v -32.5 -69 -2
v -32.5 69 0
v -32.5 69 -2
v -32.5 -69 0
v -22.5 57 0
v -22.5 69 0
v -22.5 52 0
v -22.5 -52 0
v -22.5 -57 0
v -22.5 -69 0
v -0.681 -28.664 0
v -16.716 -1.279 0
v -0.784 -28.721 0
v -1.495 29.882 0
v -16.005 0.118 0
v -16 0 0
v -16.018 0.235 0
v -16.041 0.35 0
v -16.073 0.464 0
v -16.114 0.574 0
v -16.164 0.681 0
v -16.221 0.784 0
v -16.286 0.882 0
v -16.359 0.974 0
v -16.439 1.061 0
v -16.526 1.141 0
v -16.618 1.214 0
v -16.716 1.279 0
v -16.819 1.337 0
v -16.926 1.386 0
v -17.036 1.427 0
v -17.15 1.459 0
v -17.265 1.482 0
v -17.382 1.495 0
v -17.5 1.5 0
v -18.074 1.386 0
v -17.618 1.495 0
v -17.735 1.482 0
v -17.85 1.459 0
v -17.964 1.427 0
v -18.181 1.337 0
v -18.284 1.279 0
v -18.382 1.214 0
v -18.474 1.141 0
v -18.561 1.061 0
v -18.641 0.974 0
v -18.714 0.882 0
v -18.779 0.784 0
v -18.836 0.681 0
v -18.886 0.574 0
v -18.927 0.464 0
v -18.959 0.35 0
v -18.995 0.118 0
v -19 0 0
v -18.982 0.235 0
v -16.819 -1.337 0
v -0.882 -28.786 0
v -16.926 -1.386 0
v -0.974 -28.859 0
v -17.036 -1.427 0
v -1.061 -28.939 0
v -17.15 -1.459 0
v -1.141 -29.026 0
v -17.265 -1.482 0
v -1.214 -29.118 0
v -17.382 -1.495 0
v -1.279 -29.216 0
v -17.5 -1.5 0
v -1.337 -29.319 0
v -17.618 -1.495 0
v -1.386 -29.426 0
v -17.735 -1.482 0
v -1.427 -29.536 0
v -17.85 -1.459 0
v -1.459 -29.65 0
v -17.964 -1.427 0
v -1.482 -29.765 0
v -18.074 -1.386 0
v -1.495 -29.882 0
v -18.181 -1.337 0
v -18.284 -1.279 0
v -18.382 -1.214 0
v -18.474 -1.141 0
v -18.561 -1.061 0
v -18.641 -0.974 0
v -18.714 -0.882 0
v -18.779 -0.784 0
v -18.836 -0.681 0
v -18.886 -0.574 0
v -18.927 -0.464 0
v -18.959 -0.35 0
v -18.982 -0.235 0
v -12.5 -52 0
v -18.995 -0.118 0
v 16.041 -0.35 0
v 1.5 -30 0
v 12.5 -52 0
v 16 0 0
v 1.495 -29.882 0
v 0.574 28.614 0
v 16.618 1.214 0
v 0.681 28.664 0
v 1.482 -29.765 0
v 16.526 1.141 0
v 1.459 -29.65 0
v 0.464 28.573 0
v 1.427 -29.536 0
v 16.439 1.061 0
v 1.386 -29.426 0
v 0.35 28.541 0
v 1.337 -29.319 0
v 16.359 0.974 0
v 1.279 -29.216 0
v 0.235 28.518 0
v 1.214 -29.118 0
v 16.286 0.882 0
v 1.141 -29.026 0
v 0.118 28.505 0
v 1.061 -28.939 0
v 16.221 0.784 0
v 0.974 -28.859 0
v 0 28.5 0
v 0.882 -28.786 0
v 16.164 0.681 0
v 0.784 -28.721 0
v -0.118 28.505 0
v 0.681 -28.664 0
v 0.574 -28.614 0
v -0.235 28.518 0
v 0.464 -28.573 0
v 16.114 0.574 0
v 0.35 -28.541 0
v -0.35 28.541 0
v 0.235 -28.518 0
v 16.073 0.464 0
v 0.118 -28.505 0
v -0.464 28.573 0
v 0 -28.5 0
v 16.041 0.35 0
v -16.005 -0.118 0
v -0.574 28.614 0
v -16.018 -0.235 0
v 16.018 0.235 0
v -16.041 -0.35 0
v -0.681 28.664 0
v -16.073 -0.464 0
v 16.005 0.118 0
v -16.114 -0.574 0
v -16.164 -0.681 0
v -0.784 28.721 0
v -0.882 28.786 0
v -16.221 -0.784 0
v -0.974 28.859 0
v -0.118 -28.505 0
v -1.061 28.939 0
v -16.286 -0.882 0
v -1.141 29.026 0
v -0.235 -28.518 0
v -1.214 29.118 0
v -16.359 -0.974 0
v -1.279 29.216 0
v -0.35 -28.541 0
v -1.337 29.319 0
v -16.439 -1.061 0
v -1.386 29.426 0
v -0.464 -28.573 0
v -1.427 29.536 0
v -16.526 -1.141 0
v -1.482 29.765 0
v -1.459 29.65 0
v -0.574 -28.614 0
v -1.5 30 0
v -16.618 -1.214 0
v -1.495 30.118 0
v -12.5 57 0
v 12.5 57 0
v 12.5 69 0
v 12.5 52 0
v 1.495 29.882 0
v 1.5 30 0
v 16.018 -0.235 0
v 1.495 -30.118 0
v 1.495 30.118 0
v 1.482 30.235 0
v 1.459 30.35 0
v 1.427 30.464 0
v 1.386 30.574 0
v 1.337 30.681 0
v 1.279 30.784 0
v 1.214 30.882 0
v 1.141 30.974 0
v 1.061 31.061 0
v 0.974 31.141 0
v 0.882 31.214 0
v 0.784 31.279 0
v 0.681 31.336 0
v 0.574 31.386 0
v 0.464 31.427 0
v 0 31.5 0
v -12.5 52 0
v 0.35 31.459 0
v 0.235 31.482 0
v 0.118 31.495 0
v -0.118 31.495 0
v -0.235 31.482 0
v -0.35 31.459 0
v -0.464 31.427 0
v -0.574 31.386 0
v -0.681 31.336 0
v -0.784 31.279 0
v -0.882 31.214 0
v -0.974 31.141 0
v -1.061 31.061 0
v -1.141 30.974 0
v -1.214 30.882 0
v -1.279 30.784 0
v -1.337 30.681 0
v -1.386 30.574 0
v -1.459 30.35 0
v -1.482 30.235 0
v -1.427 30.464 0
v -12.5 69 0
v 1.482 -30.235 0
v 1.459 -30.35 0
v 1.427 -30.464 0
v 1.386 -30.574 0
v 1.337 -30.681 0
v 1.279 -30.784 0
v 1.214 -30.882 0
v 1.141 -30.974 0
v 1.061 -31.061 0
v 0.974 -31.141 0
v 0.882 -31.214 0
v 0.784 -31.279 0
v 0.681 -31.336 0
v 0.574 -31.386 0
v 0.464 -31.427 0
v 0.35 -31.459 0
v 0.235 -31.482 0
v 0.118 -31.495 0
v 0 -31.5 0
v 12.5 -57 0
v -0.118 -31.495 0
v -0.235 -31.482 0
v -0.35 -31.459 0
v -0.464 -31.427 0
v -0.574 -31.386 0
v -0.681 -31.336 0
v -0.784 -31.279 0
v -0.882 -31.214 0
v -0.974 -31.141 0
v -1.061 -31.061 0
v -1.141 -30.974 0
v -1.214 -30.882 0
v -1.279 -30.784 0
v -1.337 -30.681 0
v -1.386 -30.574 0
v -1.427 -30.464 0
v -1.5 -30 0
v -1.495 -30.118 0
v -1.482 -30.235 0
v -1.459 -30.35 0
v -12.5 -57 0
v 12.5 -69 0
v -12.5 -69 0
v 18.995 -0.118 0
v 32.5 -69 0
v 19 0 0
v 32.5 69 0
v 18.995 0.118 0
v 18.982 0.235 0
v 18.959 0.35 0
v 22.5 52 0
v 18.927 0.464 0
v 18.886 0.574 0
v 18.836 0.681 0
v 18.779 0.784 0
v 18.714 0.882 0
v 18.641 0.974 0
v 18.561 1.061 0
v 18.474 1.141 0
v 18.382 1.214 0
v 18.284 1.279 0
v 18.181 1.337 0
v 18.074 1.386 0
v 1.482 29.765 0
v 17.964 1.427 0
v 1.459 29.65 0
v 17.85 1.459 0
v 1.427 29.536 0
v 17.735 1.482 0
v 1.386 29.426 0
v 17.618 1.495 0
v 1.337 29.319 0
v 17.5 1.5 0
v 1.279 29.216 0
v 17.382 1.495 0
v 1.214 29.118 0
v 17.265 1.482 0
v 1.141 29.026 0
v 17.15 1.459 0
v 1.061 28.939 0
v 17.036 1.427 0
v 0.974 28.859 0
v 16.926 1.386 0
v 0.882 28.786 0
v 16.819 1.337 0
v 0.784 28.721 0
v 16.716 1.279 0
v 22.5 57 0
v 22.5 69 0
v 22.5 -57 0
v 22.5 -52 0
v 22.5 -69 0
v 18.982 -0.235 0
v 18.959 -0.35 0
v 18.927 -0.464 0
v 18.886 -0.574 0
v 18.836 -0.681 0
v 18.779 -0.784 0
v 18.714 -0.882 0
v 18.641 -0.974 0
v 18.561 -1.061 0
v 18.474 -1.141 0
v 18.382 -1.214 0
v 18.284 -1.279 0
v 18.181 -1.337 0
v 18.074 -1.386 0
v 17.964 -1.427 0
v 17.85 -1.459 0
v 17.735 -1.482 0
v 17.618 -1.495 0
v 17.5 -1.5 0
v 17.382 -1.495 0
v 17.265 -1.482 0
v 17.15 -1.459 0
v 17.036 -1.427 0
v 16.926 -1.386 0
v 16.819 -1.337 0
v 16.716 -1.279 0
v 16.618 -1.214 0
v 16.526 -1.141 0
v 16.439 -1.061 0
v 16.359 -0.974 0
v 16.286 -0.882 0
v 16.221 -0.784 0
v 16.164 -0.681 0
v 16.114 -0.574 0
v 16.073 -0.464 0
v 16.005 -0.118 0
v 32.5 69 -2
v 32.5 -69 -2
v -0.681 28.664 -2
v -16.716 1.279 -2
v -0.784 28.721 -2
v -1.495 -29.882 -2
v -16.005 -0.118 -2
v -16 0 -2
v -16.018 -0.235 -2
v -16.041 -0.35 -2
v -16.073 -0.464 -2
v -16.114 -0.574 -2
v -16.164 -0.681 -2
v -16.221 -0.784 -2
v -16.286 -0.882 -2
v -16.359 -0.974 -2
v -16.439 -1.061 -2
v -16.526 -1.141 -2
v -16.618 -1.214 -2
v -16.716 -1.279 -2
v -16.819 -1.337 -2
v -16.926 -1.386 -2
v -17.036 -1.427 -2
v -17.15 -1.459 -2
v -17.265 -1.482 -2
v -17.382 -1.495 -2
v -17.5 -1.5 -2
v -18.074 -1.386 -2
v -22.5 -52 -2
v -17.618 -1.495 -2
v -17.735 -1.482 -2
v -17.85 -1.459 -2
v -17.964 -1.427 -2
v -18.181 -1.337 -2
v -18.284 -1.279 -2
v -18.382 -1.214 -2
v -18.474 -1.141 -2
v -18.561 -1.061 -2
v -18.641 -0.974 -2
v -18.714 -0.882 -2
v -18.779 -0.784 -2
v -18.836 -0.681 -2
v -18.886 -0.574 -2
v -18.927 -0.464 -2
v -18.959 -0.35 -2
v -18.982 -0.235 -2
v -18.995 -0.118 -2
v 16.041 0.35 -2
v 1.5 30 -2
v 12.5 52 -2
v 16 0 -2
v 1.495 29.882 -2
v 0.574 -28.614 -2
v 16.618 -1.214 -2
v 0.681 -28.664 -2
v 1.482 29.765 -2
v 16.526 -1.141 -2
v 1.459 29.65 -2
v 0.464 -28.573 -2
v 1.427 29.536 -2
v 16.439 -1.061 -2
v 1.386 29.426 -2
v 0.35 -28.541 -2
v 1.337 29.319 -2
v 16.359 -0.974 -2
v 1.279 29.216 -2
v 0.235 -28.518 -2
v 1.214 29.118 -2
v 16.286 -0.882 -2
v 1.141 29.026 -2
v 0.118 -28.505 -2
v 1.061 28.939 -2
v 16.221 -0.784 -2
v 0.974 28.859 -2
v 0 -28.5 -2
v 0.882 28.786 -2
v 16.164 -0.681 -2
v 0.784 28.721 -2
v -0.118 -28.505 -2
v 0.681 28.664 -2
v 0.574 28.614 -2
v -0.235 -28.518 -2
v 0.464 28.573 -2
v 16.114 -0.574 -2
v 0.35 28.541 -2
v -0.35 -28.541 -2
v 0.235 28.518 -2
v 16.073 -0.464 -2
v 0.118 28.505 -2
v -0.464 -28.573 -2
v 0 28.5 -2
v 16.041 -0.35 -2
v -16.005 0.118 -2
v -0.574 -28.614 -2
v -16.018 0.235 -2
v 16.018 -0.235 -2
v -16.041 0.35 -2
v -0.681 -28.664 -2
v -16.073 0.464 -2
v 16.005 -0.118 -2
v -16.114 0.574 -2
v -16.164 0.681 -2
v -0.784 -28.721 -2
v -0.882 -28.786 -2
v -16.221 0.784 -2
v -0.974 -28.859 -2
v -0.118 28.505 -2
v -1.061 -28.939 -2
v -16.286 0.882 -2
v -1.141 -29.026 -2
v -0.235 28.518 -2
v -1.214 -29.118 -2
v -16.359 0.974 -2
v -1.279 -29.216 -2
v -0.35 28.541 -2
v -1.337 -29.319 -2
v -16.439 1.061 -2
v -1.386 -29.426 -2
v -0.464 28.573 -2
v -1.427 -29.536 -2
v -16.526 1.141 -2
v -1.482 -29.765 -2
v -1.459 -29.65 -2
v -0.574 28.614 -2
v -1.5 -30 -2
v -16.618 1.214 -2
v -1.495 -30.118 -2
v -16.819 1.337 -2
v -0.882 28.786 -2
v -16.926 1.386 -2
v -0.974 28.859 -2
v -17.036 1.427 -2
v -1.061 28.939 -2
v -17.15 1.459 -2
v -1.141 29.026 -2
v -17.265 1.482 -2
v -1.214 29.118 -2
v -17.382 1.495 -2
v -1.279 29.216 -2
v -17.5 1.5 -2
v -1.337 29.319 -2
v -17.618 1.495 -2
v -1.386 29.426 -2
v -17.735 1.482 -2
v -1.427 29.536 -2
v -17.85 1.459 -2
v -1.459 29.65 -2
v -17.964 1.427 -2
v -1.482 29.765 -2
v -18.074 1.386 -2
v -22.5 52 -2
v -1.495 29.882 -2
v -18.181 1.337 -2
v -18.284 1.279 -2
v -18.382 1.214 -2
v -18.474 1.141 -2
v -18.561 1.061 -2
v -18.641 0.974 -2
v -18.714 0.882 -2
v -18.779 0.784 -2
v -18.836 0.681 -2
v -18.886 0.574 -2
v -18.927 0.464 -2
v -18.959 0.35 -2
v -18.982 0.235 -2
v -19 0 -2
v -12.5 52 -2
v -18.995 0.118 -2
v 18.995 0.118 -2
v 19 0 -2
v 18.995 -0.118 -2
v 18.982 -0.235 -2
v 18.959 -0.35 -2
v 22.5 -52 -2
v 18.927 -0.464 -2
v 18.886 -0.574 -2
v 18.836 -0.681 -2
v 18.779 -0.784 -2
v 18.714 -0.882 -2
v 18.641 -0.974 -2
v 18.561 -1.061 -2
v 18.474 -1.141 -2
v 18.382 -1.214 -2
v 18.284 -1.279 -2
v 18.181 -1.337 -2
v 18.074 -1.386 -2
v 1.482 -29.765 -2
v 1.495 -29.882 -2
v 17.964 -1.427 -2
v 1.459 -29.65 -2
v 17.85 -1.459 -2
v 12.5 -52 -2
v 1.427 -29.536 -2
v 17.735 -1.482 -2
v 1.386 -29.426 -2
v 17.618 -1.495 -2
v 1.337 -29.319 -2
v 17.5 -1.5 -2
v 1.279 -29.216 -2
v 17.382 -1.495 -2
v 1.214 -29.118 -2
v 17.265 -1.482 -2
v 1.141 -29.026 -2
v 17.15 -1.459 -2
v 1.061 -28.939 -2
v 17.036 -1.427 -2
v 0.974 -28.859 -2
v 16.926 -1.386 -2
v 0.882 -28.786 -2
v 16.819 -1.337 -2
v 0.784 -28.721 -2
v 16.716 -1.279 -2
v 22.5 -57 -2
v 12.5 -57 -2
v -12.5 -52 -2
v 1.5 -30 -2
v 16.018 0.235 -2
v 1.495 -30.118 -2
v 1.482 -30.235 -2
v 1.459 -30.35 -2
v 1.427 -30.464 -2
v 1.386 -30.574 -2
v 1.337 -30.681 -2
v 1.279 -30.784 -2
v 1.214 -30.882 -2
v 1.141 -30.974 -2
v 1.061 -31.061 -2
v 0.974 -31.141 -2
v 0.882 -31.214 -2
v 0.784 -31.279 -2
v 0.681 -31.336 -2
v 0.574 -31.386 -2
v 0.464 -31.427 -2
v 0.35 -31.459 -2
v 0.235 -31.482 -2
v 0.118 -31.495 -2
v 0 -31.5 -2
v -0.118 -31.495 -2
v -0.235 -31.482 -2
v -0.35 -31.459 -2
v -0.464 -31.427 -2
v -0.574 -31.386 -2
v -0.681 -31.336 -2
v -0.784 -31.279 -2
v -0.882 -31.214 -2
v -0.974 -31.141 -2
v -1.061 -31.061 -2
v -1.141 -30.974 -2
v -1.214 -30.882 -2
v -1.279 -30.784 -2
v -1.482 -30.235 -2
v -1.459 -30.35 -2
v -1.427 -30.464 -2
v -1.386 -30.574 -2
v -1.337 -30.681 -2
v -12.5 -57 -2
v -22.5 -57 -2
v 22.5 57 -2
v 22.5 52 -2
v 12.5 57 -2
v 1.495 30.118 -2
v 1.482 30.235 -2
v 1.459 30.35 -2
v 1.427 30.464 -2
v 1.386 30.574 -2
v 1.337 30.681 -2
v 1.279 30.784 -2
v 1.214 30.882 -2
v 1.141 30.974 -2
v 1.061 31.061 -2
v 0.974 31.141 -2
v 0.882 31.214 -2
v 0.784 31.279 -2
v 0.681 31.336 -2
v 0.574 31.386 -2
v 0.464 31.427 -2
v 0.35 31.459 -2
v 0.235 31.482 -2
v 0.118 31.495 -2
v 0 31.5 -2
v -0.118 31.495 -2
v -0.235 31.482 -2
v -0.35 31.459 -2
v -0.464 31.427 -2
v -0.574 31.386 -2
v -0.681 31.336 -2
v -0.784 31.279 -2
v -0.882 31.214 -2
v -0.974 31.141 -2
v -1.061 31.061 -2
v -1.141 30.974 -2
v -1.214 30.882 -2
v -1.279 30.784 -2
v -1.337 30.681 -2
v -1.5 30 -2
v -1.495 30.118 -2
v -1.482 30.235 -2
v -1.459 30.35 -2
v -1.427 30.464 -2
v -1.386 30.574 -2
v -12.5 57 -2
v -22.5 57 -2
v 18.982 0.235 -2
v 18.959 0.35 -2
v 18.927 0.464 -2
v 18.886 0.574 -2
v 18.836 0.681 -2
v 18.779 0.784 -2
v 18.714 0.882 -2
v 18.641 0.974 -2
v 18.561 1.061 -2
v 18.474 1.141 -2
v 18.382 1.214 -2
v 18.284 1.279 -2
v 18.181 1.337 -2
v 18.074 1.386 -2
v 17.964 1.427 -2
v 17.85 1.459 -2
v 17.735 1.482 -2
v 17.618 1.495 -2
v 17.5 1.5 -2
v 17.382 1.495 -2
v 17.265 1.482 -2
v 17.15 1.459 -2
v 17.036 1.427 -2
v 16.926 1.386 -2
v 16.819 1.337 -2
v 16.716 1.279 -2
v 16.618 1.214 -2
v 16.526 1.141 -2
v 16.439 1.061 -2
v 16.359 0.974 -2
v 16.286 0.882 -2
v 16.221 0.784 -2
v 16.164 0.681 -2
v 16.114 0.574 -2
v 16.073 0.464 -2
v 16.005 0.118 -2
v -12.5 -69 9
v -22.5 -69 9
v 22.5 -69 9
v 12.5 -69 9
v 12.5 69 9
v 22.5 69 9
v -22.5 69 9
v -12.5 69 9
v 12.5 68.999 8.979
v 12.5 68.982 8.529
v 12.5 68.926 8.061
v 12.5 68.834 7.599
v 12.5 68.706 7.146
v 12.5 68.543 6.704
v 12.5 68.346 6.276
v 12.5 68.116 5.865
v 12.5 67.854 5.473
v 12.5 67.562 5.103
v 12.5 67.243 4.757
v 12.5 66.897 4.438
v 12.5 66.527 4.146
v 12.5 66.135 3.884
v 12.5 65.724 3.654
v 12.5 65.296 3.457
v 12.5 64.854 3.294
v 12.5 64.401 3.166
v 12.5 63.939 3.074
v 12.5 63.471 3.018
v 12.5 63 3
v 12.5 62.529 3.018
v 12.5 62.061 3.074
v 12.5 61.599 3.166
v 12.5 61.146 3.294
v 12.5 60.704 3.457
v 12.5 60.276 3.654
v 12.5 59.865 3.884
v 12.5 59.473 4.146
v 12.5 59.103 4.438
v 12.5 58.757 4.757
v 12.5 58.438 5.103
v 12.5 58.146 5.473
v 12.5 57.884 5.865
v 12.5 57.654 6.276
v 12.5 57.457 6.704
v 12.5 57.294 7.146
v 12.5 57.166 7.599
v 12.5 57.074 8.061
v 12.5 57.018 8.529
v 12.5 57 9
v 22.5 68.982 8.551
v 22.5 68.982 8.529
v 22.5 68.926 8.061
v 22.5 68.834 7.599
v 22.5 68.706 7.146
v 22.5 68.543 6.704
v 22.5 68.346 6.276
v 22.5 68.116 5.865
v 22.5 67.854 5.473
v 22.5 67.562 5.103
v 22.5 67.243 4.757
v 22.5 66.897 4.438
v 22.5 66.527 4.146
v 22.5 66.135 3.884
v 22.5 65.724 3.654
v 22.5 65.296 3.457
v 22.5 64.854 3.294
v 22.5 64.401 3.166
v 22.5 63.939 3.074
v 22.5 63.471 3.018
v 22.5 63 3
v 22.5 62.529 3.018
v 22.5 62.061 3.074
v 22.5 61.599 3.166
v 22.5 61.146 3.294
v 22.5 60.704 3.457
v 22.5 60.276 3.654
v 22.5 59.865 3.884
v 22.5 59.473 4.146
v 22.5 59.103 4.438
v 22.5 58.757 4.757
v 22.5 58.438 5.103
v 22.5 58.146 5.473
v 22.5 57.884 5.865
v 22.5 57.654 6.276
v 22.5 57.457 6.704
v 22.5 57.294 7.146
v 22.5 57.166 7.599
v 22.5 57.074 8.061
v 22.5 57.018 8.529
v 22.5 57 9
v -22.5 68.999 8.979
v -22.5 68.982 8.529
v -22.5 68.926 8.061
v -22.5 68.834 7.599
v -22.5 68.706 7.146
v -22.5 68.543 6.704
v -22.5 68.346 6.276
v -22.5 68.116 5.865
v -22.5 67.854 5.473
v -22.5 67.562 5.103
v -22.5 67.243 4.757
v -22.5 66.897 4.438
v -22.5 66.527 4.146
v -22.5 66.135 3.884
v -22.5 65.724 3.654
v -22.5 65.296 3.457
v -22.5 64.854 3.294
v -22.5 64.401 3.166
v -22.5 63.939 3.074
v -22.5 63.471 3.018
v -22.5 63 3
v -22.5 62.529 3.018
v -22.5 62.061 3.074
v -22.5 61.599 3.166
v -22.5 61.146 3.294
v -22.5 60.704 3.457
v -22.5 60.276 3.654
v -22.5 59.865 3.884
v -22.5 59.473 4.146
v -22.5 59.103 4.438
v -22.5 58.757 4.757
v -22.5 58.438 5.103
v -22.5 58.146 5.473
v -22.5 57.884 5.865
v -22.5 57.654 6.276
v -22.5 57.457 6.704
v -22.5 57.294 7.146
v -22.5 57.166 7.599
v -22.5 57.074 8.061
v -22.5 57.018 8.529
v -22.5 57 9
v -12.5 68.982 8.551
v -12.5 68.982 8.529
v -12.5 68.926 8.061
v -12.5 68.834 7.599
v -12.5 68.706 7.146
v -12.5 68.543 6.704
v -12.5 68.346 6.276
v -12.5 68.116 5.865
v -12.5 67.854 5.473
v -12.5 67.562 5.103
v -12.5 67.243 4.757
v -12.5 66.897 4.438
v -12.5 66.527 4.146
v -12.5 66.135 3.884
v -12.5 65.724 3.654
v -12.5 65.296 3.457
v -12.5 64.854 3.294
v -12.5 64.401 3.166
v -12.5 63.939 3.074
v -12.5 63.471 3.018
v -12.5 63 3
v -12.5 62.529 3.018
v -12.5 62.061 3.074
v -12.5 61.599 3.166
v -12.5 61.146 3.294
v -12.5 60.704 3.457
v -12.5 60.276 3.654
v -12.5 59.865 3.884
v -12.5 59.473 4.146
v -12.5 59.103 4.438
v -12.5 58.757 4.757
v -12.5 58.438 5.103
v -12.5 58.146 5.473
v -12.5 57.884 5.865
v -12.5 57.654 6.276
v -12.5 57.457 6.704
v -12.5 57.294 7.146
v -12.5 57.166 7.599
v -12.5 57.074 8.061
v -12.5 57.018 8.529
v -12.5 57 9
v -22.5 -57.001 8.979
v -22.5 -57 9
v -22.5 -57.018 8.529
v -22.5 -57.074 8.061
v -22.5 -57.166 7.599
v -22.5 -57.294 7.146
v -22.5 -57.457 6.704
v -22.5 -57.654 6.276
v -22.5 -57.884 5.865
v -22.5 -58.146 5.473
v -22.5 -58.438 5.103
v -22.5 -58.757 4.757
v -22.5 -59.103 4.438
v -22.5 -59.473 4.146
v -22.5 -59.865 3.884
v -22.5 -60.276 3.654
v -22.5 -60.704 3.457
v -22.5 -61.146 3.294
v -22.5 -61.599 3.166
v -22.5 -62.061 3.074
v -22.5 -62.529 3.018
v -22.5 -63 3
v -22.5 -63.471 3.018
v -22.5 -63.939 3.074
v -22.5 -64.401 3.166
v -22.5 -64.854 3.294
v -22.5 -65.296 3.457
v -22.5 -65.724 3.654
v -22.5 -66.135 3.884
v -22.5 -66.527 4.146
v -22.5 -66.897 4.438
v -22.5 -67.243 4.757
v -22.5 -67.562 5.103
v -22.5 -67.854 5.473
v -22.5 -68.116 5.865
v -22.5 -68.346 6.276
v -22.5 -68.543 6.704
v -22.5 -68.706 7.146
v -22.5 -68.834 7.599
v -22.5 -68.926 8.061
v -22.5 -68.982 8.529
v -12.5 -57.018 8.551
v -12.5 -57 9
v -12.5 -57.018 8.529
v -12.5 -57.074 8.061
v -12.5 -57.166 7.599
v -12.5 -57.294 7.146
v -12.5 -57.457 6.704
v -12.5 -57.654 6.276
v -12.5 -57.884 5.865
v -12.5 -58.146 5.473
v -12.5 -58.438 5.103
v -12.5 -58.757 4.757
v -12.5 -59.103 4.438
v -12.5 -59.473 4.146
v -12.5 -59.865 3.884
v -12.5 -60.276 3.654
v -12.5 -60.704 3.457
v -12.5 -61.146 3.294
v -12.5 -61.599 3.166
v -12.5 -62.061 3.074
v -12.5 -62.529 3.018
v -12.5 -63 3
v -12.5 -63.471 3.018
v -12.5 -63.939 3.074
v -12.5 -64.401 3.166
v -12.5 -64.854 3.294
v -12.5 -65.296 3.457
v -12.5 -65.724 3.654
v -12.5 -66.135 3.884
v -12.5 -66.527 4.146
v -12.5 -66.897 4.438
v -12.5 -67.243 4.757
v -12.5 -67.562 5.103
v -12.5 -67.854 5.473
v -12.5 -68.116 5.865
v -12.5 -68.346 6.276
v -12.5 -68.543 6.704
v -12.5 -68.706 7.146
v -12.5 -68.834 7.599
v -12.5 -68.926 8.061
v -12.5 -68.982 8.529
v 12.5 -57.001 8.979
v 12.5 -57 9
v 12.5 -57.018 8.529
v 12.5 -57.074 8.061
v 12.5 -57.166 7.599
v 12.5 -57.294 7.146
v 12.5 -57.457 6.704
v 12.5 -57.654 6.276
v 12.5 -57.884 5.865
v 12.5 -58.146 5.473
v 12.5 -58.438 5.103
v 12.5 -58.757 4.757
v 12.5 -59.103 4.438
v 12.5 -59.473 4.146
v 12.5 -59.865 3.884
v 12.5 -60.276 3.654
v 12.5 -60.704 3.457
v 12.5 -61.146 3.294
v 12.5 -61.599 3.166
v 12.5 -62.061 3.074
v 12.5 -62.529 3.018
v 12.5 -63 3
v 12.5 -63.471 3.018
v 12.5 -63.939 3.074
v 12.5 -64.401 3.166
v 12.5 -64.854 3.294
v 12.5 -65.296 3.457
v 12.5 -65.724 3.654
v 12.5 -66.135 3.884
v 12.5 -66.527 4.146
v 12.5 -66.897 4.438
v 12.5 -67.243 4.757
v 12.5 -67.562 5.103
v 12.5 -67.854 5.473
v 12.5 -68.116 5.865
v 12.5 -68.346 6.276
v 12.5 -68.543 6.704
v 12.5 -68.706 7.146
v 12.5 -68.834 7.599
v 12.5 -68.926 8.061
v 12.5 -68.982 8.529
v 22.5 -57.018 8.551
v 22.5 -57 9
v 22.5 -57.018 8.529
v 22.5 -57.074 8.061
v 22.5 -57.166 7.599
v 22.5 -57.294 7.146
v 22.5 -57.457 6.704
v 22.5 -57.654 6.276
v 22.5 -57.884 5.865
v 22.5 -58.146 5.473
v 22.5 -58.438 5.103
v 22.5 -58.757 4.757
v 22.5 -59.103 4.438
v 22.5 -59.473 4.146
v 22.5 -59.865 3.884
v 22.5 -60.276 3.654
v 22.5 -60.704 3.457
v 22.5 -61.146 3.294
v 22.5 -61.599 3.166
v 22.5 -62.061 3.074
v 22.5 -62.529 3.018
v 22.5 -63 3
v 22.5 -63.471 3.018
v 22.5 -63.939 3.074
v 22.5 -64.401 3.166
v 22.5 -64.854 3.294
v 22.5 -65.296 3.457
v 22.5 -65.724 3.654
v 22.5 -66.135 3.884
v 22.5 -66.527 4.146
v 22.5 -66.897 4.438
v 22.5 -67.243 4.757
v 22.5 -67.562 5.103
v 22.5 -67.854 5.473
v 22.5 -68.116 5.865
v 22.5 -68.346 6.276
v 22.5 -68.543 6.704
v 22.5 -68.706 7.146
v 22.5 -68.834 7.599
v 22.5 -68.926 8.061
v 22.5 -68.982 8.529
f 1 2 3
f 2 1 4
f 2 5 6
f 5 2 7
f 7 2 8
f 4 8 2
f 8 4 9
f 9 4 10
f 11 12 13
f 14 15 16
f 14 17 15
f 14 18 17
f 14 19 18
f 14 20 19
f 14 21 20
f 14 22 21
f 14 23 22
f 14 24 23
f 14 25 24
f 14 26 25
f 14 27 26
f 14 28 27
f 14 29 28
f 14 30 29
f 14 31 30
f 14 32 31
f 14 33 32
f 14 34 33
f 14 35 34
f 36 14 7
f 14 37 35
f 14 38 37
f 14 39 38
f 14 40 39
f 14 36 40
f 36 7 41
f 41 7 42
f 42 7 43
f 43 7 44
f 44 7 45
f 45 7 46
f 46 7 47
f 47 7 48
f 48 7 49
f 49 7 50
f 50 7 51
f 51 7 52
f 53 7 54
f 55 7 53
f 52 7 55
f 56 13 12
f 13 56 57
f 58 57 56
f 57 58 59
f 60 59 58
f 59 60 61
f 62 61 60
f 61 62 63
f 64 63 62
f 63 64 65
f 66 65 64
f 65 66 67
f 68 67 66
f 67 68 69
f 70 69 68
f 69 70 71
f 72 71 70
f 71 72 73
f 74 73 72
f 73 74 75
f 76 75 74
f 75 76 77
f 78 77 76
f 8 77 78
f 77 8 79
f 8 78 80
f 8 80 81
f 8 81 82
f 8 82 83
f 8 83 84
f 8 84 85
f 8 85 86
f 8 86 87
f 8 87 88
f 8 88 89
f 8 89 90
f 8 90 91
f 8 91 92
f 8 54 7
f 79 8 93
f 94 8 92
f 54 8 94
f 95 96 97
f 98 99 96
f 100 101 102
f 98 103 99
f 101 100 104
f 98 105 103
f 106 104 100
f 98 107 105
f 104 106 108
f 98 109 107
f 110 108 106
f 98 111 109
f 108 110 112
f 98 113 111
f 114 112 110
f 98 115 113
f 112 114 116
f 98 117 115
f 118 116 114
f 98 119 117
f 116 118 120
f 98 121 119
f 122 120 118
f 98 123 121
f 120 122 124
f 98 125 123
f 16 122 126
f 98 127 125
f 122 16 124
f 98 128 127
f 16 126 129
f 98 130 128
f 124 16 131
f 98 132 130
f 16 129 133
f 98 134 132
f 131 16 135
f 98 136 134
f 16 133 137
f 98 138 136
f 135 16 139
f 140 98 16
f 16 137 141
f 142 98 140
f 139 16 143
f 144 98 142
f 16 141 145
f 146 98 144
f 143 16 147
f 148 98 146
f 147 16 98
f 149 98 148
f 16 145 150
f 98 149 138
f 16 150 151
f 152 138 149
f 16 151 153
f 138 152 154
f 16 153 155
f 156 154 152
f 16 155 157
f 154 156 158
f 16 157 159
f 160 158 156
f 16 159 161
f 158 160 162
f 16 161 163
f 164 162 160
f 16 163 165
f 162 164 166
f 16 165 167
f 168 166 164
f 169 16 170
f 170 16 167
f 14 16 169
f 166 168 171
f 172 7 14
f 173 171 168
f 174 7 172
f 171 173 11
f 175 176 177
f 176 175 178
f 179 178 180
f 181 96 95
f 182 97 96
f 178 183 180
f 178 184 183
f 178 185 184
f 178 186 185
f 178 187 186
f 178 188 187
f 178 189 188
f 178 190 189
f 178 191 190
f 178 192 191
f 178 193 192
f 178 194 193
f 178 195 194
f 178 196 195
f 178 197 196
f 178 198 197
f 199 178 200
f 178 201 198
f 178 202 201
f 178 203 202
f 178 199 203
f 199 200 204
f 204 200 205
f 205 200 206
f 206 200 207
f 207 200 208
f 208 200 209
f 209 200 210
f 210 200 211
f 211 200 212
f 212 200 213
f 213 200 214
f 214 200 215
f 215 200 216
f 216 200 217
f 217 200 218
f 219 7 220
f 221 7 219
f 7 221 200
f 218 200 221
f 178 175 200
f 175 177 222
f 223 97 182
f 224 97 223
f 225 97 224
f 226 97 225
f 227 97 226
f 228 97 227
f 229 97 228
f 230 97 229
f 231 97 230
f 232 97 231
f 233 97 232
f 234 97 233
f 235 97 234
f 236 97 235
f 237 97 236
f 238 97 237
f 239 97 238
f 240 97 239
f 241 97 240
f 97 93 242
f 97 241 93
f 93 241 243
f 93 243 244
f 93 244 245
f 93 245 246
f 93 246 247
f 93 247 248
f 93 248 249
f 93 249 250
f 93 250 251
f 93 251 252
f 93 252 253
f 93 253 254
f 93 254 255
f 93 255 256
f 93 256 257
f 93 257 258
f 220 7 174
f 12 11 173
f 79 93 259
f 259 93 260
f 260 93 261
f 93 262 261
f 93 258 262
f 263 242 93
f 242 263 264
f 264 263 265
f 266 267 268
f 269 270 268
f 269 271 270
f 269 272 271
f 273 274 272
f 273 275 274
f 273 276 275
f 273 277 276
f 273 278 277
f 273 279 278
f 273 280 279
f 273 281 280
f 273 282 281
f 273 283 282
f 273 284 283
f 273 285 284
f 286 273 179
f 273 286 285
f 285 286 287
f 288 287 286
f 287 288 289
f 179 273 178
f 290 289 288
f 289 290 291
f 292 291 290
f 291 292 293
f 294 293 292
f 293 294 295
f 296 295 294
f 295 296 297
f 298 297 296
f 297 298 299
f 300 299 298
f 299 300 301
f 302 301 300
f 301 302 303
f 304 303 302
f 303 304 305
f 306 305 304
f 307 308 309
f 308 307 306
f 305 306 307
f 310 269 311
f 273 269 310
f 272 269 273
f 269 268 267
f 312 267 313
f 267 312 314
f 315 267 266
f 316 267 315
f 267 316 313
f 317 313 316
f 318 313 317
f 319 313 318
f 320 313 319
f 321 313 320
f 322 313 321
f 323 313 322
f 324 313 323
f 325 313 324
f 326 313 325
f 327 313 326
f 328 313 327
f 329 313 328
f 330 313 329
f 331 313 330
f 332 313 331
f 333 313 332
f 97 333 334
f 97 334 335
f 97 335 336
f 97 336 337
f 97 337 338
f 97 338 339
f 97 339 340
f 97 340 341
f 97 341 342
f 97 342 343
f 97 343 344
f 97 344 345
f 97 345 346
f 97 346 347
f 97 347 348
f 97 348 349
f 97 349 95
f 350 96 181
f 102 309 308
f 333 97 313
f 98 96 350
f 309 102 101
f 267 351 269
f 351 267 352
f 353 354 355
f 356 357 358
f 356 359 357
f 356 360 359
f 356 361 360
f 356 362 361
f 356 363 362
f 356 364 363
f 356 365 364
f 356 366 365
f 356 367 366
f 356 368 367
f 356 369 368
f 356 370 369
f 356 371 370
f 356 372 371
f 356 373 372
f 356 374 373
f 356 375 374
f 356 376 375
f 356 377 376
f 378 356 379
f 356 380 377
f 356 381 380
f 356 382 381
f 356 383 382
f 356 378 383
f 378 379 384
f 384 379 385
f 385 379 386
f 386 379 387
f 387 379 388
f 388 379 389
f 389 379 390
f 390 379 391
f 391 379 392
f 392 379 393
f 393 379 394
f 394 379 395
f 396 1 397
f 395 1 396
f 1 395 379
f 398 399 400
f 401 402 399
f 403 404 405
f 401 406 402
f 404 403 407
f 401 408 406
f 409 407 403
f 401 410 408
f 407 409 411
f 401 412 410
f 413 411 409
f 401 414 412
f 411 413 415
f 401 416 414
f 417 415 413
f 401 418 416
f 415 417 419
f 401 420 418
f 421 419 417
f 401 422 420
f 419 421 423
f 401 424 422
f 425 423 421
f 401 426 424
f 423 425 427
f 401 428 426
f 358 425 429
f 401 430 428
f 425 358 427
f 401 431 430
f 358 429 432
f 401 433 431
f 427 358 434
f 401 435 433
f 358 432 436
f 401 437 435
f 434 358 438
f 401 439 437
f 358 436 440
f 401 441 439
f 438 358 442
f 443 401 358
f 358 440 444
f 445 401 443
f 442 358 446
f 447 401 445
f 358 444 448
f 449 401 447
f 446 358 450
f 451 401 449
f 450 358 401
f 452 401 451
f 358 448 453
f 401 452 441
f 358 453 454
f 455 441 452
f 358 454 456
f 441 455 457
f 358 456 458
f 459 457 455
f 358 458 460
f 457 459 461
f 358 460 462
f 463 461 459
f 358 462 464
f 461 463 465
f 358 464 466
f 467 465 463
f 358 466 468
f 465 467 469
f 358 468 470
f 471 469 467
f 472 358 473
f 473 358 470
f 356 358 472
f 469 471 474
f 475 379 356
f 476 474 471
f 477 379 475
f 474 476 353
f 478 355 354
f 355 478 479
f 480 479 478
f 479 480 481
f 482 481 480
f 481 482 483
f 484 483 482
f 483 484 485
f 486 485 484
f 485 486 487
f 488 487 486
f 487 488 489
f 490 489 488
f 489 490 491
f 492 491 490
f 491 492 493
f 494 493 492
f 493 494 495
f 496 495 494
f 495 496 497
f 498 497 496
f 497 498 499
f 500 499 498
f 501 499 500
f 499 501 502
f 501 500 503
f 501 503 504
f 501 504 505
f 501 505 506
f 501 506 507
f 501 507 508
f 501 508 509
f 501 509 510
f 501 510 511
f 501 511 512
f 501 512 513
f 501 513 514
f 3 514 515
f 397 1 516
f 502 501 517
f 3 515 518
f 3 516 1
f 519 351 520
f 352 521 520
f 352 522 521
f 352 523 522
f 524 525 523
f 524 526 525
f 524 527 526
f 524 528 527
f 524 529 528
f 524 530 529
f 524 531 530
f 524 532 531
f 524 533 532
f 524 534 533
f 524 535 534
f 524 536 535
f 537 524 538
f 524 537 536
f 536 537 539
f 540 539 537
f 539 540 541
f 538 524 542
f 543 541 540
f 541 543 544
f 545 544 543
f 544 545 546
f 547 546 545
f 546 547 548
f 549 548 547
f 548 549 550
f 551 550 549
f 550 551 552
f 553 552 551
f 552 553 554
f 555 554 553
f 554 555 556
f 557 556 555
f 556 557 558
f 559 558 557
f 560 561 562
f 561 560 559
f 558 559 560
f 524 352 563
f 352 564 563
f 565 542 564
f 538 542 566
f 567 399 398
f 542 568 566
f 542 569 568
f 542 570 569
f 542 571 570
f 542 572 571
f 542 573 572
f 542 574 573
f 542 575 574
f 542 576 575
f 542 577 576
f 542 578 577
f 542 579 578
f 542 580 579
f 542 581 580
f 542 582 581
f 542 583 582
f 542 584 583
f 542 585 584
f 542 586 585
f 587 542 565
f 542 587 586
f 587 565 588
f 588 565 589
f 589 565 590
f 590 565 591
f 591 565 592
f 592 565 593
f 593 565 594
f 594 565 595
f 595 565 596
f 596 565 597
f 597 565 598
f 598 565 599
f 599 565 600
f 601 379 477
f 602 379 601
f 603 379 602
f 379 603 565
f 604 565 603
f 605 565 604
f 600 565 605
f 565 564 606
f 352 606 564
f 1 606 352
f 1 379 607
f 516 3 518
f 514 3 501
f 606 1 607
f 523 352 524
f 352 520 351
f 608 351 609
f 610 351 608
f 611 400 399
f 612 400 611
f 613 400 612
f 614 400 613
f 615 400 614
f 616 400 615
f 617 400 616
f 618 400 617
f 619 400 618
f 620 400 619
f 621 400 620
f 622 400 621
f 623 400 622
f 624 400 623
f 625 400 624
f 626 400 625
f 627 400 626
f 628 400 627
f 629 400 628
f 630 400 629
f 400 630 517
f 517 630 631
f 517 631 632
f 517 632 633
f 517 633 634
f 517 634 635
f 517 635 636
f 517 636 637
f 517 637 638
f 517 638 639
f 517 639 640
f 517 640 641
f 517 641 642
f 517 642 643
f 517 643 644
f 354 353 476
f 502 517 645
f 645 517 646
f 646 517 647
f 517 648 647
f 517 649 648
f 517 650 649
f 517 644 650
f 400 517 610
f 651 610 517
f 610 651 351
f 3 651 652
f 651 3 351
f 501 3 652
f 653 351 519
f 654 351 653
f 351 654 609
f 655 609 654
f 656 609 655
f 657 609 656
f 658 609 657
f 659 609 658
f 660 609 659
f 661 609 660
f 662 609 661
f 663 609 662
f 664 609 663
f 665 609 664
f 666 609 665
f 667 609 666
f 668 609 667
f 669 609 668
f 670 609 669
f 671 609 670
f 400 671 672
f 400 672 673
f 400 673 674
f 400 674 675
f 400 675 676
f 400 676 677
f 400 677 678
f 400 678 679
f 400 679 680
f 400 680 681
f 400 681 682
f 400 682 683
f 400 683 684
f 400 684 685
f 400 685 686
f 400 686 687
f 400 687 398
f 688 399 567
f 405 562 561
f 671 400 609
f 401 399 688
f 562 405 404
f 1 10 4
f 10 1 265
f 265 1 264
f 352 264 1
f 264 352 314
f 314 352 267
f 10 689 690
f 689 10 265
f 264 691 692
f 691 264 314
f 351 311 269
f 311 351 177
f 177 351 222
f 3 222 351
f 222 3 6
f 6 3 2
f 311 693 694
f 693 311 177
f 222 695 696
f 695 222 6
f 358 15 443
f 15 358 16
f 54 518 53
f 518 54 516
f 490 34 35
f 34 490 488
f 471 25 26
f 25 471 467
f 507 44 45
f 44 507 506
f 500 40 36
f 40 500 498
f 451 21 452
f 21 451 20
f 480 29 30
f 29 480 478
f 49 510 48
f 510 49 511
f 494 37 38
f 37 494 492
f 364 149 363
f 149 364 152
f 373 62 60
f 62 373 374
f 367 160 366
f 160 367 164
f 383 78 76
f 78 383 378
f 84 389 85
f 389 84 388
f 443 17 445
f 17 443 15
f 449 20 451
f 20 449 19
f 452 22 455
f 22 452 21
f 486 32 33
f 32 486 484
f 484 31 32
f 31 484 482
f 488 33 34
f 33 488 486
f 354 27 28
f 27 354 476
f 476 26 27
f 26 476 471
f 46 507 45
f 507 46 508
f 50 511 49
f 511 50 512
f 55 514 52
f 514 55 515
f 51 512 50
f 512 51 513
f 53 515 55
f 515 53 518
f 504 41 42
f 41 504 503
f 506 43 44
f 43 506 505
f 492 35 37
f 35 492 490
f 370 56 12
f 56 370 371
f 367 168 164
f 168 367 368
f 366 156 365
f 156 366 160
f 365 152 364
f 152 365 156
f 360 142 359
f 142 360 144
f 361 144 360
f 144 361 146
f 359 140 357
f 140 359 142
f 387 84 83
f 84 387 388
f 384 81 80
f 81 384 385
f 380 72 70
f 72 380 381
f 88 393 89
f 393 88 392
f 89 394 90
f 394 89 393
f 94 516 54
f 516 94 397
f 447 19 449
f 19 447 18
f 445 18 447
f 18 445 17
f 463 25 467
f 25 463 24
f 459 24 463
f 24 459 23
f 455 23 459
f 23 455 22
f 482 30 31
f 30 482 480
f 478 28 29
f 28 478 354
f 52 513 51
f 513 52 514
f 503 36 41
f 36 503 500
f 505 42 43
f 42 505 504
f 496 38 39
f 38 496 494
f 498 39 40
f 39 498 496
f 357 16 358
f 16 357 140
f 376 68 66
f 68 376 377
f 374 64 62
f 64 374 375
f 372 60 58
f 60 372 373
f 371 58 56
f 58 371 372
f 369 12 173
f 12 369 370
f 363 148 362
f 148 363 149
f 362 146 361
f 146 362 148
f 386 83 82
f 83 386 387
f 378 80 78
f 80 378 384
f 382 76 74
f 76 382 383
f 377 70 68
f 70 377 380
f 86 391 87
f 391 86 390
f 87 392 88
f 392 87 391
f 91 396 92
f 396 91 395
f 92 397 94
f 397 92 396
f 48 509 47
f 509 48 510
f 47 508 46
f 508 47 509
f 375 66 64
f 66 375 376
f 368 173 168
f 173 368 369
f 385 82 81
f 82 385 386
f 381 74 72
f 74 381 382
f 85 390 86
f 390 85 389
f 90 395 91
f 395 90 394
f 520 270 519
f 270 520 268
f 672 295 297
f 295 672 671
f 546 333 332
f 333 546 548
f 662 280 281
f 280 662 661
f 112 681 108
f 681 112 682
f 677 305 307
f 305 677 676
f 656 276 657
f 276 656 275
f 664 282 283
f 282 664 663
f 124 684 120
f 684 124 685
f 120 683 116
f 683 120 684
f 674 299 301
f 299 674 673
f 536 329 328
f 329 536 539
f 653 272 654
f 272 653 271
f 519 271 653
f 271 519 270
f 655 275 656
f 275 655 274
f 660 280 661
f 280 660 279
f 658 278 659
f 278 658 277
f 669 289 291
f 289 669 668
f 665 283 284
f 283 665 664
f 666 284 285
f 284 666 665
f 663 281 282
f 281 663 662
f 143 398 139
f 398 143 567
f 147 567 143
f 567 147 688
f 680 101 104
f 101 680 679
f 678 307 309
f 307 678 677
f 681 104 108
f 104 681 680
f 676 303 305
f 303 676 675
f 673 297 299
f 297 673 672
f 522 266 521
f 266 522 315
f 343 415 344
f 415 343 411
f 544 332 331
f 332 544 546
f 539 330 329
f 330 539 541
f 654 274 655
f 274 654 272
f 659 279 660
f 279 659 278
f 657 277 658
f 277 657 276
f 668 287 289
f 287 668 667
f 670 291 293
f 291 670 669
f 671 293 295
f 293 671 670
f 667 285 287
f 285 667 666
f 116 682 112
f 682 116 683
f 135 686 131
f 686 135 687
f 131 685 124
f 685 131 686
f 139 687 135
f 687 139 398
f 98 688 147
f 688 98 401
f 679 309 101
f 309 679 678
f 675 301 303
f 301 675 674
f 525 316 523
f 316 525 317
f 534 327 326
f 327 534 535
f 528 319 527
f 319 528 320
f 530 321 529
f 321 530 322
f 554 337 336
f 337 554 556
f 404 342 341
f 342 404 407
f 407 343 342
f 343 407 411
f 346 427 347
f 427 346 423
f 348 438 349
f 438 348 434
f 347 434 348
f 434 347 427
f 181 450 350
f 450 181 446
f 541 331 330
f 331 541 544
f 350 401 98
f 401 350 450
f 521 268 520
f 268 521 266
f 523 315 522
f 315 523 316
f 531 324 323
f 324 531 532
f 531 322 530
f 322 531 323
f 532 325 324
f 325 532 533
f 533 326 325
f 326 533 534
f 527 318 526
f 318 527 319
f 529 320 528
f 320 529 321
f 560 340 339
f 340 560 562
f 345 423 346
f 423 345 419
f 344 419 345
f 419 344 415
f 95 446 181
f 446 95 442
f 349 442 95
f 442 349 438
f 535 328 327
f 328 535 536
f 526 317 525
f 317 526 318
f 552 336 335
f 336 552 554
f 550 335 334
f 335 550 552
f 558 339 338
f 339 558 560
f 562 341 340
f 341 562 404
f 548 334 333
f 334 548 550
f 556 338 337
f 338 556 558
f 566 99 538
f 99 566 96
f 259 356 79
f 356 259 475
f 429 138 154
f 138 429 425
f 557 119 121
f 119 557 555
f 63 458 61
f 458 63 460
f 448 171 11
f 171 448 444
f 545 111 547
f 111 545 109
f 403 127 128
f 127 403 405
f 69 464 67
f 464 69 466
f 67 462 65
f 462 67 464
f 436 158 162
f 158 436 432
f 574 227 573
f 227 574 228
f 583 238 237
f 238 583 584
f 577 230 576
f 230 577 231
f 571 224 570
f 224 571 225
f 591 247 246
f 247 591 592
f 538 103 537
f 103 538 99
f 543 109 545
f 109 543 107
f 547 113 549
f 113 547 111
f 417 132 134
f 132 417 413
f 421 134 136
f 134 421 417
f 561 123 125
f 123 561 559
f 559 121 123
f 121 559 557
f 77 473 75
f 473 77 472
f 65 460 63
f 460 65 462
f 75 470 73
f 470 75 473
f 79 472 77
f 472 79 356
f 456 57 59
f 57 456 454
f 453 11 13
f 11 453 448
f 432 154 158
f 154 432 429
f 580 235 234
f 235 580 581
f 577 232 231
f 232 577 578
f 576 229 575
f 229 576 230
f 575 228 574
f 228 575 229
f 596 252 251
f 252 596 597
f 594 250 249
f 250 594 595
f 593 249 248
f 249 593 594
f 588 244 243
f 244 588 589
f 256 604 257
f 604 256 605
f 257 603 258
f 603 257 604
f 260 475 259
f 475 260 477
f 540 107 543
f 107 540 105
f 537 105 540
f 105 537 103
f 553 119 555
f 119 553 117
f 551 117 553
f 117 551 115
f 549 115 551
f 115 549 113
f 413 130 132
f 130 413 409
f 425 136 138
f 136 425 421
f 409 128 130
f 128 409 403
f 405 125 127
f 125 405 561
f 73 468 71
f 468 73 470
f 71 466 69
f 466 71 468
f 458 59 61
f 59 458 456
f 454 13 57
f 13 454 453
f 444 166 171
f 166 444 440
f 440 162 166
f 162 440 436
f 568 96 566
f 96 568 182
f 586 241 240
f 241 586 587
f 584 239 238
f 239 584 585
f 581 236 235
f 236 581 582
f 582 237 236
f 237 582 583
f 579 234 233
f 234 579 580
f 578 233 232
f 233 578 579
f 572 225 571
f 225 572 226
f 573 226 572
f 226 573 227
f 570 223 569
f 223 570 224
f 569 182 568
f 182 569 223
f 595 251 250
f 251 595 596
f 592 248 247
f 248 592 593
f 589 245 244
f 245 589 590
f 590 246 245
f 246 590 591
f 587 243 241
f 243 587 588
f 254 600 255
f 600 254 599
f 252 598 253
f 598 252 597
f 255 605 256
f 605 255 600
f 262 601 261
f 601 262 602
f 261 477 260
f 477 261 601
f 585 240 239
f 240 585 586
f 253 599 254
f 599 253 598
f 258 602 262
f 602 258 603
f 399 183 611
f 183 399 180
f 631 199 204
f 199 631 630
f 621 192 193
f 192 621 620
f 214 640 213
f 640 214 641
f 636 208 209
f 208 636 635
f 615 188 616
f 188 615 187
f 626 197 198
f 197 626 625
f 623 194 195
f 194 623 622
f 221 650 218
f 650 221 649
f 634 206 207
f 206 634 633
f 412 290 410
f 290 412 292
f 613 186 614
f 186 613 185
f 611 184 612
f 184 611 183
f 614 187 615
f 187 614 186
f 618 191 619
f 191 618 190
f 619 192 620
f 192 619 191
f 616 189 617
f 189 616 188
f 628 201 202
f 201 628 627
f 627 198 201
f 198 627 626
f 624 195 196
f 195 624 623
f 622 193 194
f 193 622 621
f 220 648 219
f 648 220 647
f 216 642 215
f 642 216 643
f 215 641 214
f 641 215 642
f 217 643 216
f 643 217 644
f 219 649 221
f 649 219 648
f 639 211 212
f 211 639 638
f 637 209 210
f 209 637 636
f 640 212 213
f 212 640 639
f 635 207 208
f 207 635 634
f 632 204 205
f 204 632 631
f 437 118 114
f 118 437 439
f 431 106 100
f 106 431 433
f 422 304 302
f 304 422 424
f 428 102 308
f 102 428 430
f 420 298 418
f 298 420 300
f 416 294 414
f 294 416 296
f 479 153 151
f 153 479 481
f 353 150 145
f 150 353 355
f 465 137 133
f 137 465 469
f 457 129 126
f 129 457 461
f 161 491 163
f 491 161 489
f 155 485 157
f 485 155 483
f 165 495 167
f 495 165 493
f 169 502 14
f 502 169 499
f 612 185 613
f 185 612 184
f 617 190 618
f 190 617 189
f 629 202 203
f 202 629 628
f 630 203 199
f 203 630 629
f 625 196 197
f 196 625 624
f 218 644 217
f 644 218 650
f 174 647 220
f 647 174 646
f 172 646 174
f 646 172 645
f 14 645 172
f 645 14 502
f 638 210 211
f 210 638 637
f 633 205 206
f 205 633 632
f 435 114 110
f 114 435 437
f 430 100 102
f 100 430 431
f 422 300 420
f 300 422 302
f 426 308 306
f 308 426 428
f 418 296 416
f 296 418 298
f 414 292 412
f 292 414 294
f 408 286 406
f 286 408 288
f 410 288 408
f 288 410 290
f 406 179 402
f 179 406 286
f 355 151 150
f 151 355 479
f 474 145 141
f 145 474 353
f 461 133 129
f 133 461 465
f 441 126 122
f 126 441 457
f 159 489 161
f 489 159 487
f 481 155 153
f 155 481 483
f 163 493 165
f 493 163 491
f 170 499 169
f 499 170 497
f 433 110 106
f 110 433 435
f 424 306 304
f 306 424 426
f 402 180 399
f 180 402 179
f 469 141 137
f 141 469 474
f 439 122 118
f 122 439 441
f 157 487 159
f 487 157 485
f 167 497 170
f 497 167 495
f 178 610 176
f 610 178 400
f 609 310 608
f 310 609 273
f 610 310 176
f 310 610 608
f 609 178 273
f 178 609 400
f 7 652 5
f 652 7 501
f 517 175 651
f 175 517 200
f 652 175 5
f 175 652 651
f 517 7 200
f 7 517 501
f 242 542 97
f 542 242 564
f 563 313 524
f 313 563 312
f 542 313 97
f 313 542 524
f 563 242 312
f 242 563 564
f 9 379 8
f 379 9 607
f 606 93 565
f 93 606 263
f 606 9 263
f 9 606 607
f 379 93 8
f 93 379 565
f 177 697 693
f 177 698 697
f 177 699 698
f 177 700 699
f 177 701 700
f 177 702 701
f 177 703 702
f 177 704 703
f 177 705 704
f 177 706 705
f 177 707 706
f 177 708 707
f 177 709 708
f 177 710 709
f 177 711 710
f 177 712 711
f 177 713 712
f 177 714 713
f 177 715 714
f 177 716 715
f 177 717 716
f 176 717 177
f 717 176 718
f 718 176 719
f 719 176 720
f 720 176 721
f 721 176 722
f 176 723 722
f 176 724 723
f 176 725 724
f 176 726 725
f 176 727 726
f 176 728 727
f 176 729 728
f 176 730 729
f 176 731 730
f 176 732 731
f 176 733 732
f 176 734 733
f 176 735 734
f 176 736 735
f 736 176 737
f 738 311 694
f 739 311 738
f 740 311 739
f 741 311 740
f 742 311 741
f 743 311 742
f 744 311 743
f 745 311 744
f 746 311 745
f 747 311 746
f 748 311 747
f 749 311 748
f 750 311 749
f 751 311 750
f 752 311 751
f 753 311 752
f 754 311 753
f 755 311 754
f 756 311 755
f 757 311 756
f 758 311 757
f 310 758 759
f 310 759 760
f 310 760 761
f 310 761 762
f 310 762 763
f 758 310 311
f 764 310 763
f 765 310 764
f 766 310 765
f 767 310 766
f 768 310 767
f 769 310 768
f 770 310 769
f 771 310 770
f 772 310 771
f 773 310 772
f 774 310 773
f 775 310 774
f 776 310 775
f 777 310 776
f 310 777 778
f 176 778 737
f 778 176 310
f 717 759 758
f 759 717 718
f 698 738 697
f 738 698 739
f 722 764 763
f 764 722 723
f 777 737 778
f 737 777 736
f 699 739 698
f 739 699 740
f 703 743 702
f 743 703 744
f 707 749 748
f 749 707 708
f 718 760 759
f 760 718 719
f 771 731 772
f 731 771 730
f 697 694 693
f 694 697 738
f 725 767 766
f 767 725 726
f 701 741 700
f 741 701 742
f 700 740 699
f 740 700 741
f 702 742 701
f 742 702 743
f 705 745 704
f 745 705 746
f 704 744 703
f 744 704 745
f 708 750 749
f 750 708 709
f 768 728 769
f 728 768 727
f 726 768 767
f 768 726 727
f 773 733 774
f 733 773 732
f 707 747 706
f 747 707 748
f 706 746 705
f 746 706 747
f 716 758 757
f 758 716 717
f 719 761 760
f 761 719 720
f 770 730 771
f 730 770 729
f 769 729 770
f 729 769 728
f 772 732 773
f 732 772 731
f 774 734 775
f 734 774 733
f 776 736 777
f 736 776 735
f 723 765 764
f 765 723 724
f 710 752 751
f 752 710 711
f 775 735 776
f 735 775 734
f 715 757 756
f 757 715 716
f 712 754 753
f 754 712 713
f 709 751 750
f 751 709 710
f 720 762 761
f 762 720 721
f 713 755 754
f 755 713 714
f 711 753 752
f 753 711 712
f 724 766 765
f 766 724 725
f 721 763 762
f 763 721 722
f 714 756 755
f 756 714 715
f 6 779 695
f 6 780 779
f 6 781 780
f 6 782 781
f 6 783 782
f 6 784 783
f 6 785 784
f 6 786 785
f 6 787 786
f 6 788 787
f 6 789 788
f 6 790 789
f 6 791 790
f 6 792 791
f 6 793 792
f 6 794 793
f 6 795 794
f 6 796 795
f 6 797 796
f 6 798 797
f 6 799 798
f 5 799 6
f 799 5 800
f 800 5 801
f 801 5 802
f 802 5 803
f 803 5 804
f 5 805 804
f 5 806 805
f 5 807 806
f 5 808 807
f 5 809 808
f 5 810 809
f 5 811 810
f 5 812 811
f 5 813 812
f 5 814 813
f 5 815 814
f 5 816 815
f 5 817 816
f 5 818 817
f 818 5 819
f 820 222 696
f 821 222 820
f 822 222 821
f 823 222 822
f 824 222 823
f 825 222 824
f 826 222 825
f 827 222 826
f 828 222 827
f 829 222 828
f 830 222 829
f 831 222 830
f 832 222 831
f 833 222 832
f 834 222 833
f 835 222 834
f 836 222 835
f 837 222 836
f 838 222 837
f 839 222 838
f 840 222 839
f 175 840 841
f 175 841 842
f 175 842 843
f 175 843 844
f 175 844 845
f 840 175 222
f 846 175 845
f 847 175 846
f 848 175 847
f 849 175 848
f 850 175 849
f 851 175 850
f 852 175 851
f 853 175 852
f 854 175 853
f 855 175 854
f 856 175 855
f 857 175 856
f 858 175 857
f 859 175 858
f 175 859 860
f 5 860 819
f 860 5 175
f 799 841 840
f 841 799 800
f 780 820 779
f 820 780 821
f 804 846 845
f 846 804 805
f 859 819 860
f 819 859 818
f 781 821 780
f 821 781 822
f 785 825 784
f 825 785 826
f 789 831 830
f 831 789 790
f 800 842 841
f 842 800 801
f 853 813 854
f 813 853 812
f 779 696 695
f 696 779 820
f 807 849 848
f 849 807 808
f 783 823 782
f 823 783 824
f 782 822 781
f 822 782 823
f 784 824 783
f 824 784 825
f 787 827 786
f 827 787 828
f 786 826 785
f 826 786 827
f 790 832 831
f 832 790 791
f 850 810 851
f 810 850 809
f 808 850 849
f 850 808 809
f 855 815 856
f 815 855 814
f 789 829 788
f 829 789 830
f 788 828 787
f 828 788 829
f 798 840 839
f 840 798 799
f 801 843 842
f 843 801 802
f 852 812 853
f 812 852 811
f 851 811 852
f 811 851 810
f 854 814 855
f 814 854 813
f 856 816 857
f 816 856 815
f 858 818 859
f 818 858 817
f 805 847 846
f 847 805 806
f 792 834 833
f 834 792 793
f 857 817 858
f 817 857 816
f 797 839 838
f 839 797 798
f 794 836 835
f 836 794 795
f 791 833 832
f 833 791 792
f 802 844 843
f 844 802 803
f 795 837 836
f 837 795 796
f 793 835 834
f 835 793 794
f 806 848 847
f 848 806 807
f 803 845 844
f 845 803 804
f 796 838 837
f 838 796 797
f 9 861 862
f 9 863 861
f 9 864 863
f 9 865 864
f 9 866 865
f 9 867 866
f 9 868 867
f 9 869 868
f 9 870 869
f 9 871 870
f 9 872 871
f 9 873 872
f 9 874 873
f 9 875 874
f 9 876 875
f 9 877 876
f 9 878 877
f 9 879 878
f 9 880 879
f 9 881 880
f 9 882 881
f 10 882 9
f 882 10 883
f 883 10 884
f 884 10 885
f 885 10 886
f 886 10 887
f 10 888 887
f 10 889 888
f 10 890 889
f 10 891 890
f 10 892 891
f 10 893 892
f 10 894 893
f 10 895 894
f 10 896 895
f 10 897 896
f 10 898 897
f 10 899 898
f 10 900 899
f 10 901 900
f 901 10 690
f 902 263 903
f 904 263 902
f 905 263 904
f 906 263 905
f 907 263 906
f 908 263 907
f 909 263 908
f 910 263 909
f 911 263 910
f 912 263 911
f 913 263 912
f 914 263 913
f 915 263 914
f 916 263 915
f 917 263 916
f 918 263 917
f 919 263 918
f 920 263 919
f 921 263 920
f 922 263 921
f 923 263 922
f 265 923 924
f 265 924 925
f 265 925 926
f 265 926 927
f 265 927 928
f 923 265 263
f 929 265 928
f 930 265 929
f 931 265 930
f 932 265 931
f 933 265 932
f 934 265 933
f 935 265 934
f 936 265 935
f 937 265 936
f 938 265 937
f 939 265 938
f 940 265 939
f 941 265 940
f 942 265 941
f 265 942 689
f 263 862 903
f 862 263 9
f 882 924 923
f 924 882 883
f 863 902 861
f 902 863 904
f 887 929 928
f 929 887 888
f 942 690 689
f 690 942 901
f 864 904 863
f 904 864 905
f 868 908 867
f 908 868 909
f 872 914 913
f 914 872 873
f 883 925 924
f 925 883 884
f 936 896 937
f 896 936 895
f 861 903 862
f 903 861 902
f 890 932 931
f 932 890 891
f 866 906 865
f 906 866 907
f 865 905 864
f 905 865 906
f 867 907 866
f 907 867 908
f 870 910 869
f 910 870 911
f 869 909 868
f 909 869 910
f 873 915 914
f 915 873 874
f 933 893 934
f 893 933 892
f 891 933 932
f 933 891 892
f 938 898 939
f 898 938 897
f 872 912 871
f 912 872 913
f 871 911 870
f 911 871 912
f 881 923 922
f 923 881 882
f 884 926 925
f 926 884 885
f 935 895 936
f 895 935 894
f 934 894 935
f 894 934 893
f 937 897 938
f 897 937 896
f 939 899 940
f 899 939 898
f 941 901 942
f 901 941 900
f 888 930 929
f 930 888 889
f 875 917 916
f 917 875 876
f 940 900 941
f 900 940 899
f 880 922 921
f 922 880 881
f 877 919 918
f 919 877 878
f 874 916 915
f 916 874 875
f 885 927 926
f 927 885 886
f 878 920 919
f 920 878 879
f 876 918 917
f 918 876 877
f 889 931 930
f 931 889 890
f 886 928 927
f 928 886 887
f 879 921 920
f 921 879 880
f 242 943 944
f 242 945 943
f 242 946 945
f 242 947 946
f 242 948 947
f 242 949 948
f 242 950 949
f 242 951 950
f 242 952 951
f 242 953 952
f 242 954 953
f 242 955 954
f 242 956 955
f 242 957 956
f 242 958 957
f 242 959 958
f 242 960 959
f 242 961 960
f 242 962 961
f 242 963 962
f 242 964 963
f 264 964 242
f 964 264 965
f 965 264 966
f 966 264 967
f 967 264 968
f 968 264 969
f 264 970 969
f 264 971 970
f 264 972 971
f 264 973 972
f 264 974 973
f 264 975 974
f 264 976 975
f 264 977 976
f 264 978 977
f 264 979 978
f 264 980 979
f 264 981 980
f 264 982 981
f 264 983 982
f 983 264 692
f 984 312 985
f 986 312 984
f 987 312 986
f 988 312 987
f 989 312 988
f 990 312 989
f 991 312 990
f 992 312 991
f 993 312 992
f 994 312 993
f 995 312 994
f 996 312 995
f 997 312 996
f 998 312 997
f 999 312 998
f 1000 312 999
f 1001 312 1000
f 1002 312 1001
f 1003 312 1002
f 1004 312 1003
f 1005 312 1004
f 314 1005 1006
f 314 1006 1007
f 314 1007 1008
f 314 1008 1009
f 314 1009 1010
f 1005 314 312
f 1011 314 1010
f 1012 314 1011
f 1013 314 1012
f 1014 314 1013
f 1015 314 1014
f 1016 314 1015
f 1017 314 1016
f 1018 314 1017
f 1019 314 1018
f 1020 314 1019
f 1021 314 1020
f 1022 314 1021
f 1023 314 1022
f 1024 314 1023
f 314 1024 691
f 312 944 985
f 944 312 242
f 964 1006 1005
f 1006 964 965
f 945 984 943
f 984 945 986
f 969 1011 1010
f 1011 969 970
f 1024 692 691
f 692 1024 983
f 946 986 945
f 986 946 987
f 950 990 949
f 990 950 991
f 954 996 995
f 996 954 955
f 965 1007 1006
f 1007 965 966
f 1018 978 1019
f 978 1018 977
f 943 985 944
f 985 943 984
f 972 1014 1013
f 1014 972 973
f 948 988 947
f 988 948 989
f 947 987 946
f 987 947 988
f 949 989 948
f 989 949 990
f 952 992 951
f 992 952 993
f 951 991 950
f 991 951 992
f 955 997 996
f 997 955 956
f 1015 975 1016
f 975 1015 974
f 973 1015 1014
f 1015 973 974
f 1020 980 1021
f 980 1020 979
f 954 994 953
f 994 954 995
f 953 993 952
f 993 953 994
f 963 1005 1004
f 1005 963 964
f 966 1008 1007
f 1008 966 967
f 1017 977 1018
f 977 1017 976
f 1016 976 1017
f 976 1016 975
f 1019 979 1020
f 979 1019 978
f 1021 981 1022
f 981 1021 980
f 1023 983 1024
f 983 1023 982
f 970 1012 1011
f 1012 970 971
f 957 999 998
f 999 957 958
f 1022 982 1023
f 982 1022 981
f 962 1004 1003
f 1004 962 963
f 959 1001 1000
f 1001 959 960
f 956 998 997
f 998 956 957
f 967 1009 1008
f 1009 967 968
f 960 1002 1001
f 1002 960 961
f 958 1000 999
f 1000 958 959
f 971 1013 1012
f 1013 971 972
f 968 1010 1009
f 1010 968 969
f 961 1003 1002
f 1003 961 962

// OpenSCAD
seatDiameter = 12;
seatLength = 10;
seatWidth = seatDiameter;
seatHeight = seatDiameter/2+3;
seatLengthInset = 10;

slotWidth = 5;

plateWidth = 126+seatDiameter;
plateLength = 65;
plateThickness = 2;

mountHoleDiameter = 3;
mountHoleWidthSpacing = 60;
mountHoleLengthSpacing = 35;

smoothness = 80;

union() {
	plate();
	mountSeats();
}

module mountSeats() {
	translate([plateLength/2-seatLength-seatLengthInset,plateWidth/2-seatWidth,0])
		mountSeat();
	translate([-plateLength/2+seatLengthInset,plateWidth/2-seatWidth,0])
		mountSeat();
	translate([-plateLength/2+seatLengthInset,-plateWidth/2,0])
		mountSeat();
	translate([plateLength/2-seatLength-seatLengthInset,-plateWidth/2,0])
		mountSeat();
}

module mountSeat() {
	difference() {
		cube([seatLength, seatWidth, seatHeight]);
		translate([-0.5,seatWidth/2,seatHeight])
			rotate([90,0,90])
				cylinder(d=seatDiameter, h=seatLength+1, $fn=smoothness);
	}
}

module plate() {
	difference() {
		rotate(0,0,0)
			translate([-plateLength/2, -plateWidth/2, -plateThickness])
				cube([plateLength, plateWidth, plateThickness]);
		rotate(0,0,0)
			translate([-mountHoleLengthSpacing/2, 0, -plateThickness])
				cylinder(d=mountHoleDiameter, h=plateThickness, $fn=smoothness);
		rotate(0,0,0)
			translate([mountHoleLengthSpacing/2, 0, -plateThickness])
				cylinder(d=mountHoleDiameter, h=plateThickness, $fn=smoothness);
		rotate(0,0,0)
			translate([0, -mountHoleWidthSpacing/2, -plateThickness])
				cylinder(d=mountHoleDiameter, h=plateThickness, $fn=smoothness);
		rotate(0,0,0)
			translate([0, mountHoleWidthSpacing/2, -plateThickness])
				cylinder(d=mountHoleDiameter, h=plateThickness, $fn=smoothness);
		rotate(0,0,0)
			translate([plateLength/2-seatLength-seatLengthInset,plateWidth/2-seatWidth-slotWidth,-plateThickness])
				cube([seatLength, slotWidth, plateThickness]);
		rotate(0,0,0)
			translate([-plateLength/2+seatLengthInset,plateWidth/2-seatWidth-slotWidth,-plateThickness])
				cube([seatLength, slotWidth, plateThickness]);
		rotate(0,0,0)
			translate([plateLength/2-seatLength-seatLengthInset,-plateWidth/2+seatWidth,-plateThickness])
				cube([seatLength, slotWidth, plateThickness]);
		rotate(0,0,0)
			translate([-plateLength/2+seatLengthInset,-plateWidth/2+seatWidth,-plateThickness])
				cube([seatLength, slotWidth, plateThickness]);
	}
}
